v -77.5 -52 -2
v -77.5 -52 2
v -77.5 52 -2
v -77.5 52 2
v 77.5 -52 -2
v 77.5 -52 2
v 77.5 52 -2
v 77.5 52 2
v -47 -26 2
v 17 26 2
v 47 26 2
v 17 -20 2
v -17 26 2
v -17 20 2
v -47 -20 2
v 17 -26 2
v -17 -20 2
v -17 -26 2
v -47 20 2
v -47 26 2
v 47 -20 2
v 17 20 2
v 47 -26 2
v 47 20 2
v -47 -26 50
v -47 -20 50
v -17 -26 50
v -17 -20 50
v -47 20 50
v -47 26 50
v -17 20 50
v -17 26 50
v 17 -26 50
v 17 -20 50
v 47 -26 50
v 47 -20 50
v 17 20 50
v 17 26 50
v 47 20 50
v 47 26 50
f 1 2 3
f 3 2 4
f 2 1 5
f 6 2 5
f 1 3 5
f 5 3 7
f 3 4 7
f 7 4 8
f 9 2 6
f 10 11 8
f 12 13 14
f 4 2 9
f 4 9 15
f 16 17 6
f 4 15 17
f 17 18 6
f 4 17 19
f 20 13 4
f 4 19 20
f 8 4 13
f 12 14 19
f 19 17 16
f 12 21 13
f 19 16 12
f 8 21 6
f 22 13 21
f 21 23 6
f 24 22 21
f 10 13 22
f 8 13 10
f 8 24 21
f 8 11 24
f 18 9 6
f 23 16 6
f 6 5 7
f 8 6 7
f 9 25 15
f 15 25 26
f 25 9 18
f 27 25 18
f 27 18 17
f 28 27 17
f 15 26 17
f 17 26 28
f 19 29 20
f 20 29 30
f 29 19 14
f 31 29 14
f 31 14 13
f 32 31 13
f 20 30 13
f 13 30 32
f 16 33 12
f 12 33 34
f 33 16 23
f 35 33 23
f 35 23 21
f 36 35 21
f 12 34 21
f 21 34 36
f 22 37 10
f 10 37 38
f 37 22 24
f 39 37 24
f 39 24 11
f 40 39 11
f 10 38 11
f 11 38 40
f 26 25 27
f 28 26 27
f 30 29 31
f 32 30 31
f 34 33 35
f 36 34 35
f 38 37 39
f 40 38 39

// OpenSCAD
cube([155,104,4], center= true);	
	translate([32,23,25]){cube([30,6,50], center= true);}
	translate([-32,23,25]){cube([30,6,50], center= true);}
	translate([32,-23,25]){cube([30,6,50], center= true);}
	translate([-32,-23,25]){cube([30,6,50], center= true);}
